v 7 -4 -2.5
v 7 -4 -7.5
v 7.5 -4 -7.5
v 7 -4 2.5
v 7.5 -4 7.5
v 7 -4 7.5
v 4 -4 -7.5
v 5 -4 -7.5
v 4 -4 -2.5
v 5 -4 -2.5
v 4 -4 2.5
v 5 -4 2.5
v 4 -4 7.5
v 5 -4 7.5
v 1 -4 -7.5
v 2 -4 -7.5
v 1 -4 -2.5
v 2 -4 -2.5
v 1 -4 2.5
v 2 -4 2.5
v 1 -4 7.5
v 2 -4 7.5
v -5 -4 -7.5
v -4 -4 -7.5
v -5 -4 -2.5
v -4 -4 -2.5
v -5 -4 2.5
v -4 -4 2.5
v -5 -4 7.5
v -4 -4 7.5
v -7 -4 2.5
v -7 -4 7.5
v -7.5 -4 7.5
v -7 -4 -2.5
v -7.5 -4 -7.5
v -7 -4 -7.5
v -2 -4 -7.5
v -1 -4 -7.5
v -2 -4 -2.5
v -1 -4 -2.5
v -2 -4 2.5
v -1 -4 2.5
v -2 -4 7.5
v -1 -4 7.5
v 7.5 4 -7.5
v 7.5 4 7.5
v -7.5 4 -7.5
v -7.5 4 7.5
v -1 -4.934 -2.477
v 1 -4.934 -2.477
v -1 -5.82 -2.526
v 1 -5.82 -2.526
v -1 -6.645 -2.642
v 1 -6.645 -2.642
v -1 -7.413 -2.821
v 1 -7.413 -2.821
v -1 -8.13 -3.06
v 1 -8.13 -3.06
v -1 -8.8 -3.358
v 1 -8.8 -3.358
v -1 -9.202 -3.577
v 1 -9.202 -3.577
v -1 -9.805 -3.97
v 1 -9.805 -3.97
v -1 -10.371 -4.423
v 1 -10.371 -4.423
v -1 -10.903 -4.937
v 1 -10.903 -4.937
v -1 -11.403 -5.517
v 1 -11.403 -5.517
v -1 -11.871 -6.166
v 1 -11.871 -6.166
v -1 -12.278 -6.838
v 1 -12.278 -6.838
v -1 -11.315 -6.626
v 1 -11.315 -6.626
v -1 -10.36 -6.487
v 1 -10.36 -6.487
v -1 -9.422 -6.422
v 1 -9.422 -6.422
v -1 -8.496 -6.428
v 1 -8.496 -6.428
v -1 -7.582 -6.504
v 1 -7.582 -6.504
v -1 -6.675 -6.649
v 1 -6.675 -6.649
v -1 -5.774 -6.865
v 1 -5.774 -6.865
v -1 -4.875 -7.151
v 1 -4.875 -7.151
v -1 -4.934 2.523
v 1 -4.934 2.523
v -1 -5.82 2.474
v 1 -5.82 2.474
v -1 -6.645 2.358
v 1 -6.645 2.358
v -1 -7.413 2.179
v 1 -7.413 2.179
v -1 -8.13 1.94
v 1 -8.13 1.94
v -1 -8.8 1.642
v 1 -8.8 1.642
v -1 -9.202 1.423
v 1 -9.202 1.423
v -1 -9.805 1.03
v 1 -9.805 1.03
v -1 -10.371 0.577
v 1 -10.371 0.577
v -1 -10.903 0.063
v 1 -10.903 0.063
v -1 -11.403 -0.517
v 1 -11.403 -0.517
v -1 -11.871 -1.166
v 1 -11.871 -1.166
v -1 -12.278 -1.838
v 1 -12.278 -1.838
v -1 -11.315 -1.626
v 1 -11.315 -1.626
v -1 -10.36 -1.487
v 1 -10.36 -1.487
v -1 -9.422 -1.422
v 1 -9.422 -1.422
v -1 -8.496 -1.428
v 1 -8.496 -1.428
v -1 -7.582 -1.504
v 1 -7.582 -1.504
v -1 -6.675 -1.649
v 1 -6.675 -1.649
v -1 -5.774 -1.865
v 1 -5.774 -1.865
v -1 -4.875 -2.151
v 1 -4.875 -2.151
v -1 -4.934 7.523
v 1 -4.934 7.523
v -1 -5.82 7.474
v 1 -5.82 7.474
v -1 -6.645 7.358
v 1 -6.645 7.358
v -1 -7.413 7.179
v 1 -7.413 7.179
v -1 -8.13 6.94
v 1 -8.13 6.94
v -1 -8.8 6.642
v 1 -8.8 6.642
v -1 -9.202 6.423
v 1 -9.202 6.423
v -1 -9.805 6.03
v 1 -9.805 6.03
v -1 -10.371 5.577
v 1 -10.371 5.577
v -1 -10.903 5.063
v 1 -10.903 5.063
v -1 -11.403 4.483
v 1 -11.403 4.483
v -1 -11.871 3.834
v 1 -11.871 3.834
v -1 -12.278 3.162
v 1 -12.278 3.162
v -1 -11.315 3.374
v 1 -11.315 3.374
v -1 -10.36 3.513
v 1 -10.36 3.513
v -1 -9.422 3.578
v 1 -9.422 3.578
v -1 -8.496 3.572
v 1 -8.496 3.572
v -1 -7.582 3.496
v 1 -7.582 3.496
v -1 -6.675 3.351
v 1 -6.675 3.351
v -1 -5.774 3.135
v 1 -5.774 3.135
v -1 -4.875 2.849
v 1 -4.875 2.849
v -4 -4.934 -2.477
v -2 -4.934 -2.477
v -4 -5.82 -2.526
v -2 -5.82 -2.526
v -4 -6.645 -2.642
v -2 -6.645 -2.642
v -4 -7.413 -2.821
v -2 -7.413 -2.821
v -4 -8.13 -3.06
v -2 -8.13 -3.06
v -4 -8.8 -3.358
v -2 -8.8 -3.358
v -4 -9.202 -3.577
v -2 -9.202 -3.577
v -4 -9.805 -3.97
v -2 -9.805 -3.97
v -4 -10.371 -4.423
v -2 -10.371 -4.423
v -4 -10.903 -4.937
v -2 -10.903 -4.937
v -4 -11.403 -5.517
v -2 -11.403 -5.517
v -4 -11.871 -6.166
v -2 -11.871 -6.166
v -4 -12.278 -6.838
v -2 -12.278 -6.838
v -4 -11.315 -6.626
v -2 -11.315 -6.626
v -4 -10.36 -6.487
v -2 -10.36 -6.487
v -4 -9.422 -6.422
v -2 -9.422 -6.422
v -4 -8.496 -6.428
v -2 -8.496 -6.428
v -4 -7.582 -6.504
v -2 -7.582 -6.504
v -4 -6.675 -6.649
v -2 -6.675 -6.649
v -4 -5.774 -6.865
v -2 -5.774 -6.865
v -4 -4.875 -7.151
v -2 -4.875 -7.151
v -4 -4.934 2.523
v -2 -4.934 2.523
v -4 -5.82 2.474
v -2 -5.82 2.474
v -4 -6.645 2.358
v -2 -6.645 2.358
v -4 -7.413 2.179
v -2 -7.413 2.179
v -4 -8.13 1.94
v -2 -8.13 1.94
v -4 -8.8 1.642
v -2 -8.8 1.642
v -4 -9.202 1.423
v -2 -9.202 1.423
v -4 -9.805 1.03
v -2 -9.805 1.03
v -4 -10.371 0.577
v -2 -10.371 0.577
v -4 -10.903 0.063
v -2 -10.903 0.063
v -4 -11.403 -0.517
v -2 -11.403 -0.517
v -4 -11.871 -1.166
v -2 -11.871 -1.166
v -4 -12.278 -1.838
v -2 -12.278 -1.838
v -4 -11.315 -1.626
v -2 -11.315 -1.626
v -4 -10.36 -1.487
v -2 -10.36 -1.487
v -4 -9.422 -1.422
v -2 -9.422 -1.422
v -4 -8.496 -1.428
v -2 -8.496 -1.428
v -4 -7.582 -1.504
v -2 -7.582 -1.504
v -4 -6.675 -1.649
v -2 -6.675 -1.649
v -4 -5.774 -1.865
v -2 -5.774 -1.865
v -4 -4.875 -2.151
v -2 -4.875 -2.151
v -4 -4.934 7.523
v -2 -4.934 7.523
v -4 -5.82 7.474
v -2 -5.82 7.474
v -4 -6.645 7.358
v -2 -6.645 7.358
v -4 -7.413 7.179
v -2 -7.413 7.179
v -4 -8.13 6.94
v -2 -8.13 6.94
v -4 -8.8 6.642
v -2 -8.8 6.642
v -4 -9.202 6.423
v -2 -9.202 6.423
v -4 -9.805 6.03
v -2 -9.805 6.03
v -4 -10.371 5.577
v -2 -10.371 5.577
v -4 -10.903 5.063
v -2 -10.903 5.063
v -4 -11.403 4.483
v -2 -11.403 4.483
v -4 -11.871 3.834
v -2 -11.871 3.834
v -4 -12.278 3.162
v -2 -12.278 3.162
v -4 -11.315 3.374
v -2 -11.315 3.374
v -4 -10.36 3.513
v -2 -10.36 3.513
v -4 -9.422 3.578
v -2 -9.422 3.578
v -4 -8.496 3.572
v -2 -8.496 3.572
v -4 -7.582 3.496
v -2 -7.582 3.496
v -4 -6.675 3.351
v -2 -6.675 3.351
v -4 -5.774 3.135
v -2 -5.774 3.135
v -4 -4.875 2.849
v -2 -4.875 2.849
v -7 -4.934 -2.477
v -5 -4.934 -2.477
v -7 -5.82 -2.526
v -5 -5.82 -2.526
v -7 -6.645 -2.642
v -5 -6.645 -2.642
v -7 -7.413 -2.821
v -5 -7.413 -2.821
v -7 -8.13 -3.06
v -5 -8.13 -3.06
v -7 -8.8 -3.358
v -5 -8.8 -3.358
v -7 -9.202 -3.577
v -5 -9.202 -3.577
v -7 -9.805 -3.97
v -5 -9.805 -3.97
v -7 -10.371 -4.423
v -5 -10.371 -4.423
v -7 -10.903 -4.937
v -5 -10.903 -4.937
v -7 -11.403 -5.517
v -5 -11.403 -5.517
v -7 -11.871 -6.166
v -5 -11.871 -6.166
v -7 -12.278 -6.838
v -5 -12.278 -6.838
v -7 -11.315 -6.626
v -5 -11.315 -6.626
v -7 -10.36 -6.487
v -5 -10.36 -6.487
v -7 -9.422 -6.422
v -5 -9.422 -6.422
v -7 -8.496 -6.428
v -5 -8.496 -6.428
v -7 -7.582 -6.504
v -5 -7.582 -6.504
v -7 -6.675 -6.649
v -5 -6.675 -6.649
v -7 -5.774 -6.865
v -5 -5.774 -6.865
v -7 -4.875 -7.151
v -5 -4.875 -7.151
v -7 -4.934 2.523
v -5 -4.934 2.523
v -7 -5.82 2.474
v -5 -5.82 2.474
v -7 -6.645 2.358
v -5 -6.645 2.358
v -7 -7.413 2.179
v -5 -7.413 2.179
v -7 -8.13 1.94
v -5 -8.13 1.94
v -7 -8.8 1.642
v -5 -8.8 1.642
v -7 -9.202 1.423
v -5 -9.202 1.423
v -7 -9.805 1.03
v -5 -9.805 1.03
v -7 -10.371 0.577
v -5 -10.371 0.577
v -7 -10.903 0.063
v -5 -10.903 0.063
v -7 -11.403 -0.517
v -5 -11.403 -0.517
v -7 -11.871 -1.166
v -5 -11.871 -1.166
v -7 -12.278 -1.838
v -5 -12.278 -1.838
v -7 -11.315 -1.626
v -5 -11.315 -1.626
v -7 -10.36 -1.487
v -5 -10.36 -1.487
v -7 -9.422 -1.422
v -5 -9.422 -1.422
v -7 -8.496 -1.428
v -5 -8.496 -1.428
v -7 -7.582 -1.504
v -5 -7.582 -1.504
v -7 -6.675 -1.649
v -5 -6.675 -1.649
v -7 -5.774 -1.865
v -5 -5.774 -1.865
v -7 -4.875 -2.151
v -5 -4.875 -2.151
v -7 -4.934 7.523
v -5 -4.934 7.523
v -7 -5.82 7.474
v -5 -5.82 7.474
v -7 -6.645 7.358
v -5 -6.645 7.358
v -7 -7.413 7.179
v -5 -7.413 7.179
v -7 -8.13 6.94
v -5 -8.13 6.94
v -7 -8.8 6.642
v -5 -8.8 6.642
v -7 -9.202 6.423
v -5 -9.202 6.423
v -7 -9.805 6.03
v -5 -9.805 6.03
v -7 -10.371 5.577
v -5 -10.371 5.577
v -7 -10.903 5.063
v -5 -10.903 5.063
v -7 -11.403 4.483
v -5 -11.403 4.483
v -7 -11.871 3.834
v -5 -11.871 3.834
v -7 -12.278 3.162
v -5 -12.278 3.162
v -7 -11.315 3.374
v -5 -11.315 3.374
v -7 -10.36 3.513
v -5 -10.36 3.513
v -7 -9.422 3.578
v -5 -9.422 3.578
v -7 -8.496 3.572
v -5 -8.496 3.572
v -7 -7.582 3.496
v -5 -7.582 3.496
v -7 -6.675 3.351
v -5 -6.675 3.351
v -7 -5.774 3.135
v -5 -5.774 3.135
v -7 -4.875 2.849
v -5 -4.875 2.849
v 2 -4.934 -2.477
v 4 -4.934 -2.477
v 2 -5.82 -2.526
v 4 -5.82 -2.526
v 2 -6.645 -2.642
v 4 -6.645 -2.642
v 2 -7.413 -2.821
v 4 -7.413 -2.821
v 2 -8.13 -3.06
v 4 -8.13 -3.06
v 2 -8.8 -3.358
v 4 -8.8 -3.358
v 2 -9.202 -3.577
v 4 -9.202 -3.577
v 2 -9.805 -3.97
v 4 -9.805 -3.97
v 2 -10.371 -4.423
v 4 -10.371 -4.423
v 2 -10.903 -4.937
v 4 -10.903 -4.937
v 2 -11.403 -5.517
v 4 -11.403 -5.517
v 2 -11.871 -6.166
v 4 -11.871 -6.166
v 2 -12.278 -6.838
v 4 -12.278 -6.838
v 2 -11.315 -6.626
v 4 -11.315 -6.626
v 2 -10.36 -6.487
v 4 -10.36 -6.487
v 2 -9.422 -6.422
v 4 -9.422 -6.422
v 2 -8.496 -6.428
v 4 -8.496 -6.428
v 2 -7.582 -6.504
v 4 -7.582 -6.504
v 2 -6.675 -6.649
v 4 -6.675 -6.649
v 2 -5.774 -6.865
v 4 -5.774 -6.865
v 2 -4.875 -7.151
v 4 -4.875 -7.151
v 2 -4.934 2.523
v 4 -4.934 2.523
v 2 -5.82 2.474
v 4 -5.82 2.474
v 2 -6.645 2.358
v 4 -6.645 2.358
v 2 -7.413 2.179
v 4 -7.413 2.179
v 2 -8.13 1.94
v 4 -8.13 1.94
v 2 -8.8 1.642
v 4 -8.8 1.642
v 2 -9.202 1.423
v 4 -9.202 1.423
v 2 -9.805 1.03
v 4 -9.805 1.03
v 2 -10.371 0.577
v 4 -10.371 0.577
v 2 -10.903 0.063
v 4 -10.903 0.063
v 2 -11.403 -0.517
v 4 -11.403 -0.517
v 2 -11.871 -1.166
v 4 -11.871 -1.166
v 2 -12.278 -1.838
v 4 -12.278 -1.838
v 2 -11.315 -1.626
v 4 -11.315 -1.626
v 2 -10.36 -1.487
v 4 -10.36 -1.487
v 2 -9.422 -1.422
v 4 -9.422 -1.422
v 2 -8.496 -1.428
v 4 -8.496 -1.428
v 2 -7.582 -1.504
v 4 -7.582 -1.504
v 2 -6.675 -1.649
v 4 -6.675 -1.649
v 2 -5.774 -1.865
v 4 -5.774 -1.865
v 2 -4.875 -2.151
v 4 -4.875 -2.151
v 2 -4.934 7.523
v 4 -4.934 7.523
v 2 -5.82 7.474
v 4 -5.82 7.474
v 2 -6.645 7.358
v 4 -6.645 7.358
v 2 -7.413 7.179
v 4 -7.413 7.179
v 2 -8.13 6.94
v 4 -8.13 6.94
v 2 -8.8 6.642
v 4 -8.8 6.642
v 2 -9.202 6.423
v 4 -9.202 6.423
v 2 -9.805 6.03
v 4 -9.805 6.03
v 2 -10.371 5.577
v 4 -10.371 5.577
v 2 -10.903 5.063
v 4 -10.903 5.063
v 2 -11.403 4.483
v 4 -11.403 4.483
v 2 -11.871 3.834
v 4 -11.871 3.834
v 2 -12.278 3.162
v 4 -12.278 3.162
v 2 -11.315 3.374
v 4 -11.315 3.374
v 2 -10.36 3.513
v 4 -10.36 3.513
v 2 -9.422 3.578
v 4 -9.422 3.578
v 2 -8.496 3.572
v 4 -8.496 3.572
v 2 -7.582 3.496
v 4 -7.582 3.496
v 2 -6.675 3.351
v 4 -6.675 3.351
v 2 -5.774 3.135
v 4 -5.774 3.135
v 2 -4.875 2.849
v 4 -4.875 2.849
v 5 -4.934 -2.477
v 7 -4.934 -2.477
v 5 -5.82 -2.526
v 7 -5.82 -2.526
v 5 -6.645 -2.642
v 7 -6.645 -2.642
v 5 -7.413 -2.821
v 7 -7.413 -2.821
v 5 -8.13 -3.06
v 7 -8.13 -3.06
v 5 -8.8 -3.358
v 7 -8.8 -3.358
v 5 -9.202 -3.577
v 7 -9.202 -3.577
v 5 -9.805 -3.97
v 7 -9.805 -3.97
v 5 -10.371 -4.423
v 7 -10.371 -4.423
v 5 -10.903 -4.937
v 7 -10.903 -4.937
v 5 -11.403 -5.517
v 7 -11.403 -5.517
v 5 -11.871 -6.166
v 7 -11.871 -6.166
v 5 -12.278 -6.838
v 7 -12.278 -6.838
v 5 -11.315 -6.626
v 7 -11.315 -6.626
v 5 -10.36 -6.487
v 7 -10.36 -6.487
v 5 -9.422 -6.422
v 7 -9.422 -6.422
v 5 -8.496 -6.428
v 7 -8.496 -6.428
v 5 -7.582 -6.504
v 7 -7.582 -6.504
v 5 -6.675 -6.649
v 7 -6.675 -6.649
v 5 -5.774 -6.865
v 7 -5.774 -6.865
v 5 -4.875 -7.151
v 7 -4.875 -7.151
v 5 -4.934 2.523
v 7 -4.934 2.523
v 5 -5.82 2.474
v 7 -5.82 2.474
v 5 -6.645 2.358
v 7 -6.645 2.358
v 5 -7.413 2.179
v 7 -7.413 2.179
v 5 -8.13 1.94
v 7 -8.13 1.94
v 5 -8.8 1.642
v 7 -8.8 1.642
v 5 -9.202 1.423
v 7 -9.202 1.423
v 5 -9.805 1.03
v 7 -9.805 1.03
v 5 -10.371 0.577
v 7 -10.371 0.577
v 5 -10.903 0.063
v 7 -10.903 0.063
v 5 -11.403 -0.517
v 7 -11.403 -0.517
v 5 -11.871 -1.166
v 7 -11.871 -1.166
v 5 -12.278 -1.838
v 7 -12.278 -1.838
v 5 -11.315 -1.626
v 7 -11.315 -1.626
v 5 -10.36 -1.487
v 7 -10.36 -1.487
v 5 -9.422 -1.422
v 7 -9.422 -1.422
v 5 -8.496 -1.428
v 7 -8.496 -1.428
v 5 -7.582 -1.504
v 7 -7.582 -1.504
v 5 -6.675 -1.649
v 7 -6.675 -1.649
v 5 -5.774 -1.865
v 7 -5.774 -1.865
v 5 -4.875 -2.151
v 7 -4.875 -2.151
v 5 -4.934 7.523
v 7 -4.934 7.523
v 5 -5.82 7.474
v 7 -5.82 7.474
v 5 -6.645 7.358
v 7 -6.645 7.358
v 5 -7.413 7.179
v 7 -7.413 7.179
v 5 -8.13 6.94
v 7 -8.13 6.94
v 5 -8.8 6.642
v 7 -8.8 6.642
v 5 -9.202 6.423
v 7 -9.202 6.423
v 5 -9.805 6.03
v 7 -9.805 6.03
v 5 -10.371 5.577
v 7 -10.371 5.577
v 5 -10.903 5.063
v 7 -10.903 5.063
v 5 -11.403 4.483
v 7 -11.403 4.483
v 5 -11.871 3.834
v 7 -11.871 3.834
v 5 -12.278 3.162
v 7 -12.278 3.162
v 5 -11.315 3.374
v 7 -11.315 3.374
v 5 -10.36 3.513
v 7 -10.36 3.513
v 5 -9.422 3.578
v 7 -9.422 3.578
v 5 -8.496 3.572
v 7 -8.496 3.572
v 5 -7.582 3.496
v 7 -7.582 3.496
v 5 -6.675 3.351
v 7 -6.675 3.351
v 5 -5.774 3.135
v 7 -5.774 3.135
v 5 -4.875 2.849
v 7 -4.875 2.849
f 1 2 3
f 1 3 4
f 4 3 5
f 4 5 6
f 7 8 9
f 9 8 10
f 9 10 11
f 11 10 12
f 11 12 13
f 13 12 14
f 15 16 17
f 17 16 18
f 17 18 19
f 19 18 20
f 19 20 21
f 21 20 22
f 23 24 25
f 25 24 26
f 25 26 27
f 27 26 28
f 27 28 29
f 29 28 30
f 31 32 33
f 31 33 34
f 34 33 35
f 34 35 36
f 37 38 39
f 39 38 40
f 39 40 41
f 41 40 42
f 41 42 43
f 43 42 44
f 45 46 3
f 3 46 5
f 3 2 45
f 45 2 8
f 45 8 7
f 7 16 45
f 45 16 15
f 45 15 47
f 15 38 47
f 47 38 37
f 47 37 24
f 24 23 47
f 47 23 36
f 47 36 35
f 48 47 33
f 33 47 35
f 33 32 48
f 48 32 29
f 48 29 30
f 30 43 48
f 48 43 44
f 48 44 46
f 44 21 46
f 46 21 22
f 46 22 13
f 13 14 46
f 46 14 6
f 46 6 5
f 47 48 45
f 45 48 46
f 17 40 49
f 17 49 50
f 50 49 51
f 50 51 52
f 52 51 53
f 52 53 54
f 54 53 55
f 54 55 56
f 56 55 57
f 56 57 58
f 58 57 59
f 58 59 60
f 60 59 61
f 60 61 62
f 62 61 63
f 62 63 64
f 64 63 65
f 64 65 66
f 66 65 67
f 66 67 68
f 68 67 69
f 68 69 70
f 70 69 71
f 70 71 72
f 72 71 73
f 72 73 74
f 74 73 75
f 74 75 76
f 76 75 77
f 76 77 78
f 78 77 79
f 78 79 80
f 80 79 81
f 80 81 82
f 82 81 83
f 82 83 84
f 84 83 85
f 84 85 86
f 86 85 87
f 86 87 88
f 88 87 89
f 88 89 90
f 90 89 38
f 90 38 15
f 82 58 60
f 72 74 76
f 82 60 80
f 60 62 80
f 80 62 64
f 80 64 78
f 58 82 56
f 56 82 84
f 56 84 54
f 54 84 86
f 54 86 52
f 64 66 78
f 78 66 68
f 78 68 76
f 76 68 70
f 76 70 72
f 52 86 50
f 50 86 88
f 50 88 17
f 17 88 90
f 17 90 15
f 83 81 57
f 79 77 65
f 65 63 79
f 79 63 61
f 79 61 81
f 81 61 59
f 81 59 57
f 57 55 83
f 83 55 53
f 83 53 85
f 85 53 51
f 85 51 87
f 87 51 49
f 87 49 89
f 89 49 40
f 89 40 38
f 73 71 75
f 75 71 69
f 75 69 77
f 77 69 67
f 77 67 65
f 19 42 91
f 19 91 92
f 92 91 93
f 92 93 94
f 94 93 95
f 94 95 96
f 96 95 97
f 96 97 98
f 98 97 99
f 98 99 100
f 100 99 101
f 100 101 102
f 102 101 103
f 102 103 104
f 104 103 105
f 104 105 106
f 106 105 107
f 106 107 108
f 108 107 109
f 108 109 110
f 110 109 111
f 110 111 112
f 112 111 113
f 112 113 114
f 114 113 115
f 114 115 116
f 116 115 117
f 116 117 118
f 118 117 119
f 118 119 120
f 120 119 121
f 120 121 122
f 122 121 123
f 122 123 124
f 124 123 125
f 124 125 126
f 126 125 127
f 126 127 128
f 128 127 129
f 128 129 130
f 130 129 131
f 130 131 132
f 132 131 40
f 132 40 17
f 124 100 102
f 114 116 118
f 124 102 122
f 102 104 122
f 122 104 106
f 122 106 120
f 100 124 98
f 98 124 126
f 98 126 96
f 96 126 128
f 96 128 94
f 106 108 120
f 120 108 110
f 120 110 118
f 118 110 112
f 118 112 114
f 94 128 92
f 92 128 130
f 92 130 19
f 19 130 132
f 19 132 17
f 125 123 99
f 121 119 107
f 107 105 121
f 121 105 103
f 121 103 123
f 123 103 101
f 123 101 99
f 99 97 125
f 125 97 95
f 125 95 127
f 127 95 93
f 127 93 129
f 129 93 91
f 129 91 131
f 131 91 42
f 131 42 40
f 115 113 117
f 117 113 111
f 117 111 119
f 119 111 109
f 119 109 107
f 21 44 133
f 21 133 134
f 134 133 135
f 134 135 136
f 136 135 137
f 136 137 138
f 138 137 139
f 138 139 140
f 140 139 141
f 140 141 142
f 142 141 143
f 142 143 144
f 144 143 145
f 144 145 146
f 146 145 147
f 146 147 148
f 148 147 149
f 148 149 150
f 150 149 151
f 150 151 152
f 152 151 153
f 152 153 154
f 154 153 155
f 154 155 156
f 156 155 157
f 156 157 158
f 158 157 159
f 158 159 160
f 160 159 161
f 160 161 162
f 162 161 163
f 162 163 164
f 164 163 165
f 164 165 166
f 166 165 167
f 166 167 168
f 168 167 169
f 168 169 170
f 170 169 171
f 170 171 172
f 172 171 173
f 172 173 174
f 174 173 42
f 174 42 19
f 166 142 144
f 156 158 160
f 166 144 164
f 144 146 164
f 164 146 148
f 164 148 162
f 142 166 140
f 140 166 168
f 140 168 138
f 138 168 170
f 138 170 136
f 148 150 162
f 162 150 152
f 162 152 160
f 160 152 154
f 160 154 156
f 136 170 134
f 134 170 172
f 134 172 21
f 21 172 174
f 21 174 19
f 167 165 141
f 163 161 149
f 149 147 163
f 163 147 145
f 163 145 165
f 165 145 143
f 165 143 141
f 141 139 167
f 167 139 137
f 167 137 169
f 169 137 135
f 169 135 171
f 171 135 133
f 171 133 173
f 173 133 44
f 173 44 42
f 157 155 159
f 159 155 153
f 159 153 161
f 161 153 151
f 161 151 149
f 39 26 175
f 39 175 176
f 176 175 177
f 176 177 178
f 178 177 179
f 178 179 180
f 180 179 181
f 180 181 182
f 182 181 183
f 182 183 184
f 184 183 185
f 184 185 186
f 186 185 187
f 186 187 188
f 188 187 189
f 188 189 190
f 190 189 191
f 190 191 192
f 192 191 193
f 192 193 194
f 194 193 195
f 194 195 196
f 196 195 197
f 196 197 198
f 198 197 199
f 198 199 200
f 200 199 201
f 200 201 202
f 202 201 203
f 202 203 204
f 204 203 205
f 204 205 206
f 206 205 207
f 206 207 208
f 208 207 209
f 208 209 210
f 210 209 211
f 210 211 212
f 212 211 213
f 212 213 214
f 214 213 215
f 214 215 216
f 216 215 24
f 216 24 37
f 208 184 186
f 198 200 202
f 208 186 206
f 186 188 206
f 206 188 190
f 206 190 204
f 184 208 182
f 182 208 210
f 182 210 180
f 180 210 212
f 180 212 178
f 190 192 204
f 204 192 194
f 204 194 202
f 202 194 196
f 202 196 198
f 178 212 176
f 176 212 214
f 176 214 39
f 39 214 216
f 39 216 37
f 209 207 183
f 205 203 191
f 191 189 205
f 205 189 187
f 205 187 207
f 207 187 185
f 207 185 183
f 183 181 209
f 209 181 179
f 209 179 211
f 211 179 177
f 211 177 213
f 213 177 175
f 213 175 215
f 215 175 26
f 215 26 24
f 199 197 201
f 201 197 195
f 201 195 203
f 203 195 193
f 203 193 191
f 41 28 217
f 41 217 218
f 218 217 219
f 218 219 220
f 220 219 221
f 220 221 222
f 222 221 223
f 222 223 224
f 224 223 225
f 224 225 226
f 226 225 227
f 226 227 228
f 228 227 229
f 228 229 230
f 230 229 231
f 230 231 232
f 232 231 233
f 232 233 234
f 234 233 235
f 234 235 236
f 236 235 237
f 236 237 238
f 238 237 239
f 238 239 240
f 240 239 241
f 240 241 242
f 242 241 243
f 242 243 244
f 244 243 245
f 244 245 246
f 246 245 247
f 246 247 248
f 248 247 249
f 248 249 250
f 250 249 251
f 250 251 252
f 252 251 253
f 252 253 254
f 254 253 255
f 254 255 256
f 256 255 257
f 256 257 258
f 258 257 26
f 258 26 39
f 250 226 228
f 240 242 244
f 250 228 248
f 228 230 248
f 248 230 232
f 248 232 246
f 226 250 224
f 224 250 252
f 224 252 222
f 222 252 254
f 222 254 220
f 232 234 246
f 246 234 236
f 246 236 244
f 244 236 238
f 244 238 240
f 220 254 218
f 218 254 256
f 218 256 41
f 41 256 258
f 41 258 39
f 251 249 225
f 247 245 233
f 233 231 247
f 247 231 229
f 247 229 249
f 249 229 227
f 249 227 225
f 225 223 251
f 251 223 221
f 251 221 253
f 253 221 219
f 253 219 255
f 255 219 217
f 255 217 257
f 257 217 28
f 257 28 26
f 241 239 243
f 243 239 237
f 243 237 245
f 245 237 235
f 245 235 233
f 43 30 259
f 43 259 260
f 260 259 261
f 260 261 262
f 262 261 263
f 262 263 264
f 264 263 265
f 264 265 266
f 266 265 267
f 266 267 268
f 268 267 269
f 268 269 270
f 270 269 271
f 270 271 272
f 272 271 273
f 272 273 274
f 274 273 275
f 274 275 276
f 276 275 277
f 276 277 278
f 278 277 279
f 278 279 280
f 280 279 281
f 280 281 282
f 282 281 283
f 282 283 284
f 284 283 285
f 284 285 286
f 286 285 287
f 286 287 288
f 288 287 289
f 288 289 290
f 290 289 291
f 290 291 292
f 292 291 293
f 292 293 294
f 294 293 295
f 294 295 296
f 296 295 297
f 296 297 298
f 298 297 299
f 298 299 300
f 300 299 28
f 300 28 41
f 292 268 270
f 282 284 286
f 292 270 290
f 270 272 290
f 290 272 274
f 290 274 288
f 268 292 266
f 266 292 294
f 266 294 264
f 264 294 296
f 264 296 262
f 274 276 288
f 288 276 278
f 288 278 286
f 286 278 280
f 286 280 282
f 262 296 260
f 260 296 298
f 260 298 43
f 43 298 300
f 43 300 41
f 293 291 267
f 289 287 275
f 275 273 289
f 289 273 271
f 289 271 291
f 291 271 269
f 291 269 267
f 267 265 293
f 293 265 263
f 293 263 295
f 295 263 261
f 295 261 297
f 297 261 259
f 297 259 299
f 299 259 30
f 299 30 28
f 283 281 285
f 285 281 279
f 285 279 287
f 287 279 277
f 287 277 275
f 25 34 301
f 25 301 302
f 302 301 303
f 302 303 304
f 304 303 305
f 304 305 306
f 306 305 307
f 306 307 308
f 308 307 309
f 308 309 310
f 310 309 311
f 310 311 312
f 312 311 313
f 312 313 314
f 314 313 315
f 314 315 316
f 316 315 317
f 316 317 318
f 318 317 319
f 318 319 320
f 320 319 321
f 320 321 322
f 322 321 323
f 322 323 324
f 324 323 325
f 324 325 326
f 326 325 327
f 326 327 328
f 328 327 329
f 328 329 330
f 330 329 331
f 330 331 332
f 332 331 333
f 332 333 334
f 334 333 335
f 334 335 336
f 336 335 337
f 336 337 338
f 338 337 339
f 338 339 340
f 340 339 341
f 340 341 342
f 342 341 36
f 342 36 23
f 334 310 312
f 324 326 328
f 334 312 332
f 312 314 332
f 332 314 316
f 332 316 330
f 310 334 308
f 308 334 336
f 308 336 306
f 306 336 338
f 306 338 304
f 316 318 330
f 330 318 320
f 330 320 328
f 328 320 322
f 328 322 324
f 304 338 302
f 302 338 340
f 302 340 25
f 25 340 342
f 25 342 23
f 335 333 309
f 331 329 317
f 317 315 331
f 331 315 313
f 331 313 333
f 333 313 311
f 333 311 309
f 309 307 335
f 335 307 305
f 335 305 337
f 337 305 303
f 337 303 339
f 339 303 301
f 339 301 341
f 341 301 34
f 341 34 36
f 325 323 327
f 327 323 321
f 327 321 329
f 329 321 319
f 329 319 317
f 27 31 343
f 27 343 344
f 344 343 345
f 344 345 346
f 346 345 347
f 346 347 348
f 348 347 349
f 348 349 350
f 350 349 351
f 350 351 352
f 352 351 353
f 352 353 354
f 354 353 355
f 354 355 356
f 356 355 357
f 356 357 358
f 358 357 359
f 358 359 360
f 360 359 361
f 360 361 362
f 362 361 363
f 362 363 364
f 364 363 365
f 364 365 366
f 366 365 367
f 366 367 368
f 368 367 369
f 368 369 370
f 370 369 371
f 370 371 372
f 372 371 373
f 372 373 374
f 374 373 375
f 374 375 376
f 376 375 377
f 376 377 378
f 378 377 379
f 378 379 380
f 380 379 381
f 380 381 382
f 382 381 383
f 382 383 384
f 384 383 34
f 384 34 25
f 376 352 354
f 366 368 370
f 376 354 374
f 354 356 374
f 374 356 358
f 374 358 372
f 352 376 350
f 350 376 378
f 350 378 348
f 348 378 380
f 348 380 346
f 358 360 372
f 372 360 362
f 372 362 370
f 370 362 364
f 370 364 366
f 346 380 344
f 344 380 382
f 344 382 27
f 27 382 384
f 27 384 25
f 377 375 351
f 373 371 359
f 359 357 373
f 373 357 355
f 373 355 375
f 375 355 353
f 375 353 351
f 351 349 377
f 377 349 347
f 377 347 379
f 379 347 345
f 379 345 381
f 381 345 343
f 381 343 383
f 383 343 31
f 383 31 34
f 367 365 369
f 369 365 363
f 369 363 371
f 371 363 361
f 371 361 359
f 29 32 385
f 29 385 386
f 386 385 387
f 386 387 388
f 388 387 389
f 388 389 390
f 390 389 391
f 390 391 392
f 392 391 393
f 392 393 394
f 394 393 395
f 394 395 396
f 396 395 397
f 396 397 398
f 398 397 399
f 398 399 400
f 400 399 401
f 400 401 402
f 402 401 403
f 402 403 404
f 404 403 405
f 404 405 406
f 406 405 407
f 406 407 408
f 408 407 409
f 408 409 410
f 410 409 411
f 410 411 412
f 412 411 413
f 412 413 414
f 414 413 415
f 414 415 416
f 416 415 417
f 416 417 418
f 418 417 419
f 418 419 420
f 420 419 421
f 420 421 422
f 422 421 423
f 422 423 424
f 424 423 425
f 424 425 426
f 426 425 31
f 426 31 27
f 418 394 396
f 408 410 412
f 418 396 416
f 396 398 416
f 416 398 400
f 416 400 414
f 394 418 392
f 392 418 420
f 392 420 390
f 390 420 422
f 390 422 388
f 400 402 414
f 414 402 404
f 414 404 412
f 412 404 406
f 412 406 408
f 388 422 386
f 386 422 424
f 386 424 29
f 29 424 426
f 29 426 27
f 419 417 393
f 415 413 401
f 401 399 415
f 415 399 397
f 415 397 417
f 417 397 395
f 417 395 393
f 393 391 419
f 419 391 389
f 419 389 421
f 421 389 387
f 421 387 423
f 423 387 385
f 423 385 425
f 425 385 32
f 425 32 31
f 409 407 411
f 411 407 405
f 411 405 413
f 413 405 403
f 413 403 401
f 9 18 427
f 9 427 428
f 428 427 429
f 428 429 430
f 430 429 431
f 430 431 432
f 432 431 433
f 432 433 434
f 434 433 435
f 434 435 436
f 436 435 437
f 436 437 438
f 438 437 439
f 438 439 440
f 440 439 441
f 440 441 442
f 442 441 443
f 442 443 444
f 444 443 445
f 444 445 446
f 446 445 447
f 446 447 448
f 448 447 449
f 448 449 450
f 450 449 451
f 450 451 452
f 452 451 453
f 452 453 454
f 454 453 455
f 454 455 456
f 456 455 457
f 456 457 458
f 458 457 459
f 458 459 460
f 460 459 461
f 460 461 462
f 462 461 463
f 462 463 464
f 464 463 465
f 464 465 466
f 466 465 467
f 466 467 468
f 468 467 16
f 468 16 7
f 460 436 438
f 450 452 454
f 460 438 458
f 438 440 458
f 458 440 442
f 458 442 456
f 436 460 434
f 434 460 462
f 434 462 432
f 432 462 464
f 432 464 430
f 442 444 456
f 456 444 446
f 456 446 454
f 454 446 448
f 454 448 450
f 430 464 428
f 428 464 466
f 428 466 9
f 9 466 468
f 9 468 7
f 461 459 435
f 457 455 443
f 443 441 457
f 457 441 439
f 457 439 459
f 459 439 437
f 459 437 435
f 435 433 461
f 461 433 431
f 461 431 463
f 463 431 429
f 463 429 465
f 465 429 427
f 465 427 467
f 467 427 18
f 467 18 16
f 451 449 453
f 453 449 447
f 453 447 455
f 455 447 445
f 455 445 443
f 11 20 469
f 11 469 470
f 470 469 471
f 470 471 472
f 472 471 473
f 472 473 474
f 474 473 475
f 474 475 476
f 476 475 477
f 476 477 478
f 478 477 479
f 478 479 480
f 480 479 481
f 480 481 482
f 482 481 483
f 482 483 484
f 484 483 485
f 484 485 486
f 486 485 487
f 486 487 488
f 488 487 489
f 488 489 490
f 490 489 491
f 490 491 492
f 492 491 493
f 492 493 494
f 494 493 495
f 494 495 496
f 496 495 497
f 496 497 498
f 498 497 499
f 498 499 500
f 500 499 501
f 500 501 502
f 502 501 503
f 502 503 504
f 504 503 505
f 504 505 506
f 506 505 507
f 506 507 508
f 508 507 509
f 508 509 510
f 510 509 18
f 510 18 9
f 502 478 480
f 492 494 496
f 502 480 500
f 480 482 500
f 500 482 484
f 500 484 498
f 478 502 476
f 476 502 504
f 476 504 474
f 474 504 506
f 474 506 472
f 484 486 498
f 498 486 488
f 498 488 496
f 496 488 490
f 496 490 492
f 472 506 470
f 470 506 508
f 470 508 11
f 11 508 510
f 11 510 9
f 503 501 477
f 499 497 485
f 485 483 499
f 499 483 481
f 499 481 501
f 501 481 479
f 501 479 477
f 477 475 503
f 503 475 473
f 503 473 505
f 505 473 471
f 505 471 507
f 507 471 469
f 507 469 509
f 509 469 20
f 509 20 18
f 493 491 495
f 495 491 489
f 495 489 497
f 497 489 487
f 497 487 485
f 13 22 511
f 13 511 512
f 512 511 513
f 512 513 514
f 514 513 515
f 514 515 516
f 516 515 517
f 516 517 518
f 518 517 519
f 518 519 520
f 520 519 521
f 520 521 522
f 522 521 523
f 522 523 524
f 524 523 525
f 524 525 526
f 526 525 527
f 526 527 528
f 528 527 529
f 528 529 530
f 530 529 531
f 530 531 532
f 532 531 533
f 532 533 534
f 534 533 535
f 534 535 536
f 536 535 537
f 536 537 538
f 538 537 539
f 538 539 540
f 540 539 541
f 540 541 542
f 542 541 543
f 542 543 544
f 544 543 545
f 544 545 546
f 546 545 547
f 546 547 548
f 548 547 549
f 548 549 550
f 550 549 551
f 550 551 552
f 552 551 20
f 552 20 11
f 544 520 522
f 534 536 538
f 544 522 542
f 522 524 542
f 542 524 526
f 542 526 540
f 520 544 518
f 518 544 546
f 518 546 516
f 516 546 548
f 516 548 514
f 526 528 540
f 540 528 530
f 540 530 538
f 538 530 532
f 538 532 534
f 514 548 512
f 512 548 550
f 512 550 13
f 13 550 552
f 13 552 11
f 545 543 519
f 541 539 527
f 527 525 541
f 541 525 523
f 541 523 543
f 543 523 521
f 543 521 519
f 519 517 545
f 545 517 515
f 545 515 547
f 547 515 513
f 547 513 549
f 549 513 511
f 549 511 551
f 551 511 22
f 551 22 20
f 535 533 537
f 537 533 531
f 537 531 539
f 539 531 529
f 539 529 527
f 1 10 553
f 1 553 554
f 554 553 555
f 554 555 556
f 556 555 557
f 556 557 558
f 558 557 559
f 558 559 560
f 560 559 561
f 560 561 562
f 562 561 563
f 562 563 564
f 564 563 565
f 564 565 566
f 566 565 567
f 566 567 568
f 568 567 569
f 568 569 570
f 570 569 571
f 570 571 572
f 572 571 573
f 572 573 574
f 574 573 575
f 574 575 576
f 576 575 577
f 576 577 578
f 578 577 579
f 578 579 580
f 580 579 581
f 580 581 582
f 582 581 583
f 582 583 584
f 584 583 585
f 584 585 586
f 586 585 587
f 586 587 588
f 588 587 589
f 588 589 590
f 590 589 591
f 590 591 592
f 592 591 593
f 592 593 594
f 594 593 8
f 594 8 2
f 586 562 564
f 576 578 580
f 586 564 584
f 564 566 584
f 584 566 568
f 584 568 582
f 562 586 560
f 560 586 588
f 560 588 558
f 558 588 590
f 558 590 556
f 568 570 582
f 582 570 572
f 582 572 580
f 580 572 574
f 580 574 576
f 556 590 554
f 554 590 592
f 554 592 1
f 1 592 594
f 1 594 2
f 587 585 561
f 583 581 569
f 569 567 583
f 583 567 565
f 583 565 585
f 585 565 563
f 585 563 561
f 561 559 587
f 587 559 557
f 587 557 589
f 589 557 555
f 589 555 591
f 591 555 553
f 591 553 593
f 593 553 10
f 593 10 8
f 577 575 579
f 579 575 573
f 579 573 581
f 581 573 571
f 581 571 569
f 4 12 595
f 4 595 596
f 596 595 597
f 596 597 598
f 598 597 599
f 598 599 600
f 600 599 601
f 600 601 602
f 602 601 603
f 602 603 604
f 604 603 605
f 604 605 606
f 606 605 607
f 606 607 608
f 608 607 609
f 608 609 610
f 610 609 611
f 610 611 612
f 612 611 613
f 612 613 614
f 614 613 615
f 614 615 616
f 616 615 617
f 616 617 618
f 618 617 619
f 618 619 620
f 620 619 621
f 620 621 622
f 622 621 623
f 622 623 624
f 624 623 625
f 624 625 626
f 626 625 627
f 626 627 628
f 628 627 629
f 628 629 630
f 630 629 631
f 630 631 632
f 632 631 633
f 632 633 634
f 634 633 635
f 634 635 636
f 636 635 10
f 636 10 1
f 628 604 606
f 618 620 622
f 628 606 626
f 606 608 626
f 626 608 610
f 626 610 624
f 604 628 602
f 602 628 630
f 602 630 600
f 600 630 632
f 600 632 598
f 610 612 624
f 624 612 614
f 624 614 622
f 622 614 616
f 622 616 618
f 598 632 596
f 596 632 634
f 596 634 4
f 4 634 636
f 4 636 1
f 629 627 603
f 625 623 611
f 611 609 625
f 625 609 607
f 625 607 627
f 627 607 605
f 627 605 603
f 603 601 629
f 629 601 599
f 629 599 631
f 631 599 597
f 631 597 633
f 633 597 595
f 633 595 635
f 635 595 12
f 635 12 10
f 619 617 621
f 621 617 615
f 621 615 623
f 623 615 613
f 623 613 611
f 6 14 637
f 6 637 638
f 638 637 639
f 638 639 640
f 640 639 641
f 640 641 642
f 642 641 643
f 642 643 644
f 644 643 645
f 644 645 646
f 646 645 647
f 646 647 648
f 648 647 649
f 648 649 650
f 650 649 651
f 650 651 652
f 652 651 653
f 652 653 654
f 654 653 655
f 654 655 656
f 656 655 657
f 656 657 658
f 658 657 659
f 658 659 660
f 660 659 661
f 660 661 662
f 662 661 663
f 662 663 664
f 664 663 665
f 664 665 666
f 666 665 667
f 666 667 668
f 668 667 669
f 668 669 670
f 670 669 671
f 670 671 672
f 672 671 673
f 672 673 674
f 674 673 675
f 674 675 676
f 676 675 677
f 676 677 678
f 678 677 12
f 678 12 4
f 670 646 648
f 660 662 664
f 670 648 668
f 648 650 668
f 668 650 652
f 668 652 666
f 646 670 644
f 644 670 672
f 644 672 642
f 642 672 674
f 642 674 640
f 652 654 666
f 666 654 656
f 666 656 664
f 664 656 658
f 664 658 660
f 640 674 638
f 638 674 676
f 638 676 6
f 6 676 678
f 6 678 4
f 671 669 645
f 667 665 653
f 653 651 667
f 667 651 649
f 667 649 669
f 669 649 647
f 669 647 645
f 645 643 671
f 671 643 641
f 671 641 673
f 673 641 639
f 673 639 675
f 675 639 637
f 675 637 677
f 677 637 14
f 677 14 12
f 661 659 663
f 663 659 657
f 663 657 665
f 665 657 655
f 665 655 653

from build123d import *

# Parameters (mm, degrees)
SKETCH_1_W                  = 15
SKETCH_1_H                  = 15
EXTRUDE_1_DEPTH             = 4
EXTRUDE_2_DEPTH             = 1
PATTERN_LINEAR_1_COUNT      = 3
PATTERN_LINEAR_1_PITCH      = 3
PATTERN_LINEAR_1_COUNT_DIR2 = 3
PATTERN_LINEAR_1_PITCH_DIR2 = 5
PATTERN_LINEAR_2_COUNT      = 3
PATTERN_LINEAR_2_PITCH      = 3
PATTERN_LINEAR_2_COUNT_DIR2 = 3
PATTERN_LINEAR_2_PITCH_DIR2 = 5


with BuildPart() as part:
    # 스케치1 → 보스-돌출1 (new, symmetric)
    with BuildSketch(Plane(origin=(0, 0, 0), x_dir=(1, 0, 0), z_dir=(0, 1, 0))):
        Rectangle(SKETCH_1_W, SKETCH_1_H)
    extrude(amount=EXTRUDE_1_DEPTH, both=True)

    # 스케치3 → 보스-돌출2 (add, symmetric)
    with BuildSketch(Plane(origin=(0, 0, 0), x_dir=(0, 0, -1), z_dir=(1, 0, 0))):
        with BuildLine():
            Line((2.5, -4), (7.5, -4))
            add(Edge.make_bspline(
                [(6.837946582, -12.278081575), (5.73941202, -8.009656666), (7.5, -4)],
                knots=[0, 0, 0, 1, 1, 1], degree=2))
            add(Edge.make_bspline(
                [(2.5, -4), (2.152812134, -9.664313578), (6.837946582, -12.278081575)],
                knots=[0, 0, 0, 1, 1, 1], degree=2))
        make_face()
    extrude_2 = extrude(amount=EXTRUDE_2_DEPTH, both=True)

    # 선형 패턴1: Extrude 2 3 × 3
    with Locations(*[(-i * PATTERN_LINEAR_1_PITCH, 0, j * PATTERN_LINEAR_1_PITCH_DIR2) for i in range(PATTERN_LINEAR_1_COUNT) for j in range(PATTERN_LINEAR_1_COUNT_DIR2) if (i, j) != (0, 0)]):
        add(extrude_2)

    # 선형 패턴2: Extrude 2 3 × 3
    with Locations(*[(i * PATTERN_LINEAR_2_PITCH, 0, j * PATTERN_LINEAR_2_PITCH_DIR2) for i in range(PATTERN_LINEAR_2_COUNT) for j in range(PATTERN_LINEAR_2_COUNT_DIR2) if (i, j) != (0, 0)]):
        add(extrude_2)


solid = part.part
